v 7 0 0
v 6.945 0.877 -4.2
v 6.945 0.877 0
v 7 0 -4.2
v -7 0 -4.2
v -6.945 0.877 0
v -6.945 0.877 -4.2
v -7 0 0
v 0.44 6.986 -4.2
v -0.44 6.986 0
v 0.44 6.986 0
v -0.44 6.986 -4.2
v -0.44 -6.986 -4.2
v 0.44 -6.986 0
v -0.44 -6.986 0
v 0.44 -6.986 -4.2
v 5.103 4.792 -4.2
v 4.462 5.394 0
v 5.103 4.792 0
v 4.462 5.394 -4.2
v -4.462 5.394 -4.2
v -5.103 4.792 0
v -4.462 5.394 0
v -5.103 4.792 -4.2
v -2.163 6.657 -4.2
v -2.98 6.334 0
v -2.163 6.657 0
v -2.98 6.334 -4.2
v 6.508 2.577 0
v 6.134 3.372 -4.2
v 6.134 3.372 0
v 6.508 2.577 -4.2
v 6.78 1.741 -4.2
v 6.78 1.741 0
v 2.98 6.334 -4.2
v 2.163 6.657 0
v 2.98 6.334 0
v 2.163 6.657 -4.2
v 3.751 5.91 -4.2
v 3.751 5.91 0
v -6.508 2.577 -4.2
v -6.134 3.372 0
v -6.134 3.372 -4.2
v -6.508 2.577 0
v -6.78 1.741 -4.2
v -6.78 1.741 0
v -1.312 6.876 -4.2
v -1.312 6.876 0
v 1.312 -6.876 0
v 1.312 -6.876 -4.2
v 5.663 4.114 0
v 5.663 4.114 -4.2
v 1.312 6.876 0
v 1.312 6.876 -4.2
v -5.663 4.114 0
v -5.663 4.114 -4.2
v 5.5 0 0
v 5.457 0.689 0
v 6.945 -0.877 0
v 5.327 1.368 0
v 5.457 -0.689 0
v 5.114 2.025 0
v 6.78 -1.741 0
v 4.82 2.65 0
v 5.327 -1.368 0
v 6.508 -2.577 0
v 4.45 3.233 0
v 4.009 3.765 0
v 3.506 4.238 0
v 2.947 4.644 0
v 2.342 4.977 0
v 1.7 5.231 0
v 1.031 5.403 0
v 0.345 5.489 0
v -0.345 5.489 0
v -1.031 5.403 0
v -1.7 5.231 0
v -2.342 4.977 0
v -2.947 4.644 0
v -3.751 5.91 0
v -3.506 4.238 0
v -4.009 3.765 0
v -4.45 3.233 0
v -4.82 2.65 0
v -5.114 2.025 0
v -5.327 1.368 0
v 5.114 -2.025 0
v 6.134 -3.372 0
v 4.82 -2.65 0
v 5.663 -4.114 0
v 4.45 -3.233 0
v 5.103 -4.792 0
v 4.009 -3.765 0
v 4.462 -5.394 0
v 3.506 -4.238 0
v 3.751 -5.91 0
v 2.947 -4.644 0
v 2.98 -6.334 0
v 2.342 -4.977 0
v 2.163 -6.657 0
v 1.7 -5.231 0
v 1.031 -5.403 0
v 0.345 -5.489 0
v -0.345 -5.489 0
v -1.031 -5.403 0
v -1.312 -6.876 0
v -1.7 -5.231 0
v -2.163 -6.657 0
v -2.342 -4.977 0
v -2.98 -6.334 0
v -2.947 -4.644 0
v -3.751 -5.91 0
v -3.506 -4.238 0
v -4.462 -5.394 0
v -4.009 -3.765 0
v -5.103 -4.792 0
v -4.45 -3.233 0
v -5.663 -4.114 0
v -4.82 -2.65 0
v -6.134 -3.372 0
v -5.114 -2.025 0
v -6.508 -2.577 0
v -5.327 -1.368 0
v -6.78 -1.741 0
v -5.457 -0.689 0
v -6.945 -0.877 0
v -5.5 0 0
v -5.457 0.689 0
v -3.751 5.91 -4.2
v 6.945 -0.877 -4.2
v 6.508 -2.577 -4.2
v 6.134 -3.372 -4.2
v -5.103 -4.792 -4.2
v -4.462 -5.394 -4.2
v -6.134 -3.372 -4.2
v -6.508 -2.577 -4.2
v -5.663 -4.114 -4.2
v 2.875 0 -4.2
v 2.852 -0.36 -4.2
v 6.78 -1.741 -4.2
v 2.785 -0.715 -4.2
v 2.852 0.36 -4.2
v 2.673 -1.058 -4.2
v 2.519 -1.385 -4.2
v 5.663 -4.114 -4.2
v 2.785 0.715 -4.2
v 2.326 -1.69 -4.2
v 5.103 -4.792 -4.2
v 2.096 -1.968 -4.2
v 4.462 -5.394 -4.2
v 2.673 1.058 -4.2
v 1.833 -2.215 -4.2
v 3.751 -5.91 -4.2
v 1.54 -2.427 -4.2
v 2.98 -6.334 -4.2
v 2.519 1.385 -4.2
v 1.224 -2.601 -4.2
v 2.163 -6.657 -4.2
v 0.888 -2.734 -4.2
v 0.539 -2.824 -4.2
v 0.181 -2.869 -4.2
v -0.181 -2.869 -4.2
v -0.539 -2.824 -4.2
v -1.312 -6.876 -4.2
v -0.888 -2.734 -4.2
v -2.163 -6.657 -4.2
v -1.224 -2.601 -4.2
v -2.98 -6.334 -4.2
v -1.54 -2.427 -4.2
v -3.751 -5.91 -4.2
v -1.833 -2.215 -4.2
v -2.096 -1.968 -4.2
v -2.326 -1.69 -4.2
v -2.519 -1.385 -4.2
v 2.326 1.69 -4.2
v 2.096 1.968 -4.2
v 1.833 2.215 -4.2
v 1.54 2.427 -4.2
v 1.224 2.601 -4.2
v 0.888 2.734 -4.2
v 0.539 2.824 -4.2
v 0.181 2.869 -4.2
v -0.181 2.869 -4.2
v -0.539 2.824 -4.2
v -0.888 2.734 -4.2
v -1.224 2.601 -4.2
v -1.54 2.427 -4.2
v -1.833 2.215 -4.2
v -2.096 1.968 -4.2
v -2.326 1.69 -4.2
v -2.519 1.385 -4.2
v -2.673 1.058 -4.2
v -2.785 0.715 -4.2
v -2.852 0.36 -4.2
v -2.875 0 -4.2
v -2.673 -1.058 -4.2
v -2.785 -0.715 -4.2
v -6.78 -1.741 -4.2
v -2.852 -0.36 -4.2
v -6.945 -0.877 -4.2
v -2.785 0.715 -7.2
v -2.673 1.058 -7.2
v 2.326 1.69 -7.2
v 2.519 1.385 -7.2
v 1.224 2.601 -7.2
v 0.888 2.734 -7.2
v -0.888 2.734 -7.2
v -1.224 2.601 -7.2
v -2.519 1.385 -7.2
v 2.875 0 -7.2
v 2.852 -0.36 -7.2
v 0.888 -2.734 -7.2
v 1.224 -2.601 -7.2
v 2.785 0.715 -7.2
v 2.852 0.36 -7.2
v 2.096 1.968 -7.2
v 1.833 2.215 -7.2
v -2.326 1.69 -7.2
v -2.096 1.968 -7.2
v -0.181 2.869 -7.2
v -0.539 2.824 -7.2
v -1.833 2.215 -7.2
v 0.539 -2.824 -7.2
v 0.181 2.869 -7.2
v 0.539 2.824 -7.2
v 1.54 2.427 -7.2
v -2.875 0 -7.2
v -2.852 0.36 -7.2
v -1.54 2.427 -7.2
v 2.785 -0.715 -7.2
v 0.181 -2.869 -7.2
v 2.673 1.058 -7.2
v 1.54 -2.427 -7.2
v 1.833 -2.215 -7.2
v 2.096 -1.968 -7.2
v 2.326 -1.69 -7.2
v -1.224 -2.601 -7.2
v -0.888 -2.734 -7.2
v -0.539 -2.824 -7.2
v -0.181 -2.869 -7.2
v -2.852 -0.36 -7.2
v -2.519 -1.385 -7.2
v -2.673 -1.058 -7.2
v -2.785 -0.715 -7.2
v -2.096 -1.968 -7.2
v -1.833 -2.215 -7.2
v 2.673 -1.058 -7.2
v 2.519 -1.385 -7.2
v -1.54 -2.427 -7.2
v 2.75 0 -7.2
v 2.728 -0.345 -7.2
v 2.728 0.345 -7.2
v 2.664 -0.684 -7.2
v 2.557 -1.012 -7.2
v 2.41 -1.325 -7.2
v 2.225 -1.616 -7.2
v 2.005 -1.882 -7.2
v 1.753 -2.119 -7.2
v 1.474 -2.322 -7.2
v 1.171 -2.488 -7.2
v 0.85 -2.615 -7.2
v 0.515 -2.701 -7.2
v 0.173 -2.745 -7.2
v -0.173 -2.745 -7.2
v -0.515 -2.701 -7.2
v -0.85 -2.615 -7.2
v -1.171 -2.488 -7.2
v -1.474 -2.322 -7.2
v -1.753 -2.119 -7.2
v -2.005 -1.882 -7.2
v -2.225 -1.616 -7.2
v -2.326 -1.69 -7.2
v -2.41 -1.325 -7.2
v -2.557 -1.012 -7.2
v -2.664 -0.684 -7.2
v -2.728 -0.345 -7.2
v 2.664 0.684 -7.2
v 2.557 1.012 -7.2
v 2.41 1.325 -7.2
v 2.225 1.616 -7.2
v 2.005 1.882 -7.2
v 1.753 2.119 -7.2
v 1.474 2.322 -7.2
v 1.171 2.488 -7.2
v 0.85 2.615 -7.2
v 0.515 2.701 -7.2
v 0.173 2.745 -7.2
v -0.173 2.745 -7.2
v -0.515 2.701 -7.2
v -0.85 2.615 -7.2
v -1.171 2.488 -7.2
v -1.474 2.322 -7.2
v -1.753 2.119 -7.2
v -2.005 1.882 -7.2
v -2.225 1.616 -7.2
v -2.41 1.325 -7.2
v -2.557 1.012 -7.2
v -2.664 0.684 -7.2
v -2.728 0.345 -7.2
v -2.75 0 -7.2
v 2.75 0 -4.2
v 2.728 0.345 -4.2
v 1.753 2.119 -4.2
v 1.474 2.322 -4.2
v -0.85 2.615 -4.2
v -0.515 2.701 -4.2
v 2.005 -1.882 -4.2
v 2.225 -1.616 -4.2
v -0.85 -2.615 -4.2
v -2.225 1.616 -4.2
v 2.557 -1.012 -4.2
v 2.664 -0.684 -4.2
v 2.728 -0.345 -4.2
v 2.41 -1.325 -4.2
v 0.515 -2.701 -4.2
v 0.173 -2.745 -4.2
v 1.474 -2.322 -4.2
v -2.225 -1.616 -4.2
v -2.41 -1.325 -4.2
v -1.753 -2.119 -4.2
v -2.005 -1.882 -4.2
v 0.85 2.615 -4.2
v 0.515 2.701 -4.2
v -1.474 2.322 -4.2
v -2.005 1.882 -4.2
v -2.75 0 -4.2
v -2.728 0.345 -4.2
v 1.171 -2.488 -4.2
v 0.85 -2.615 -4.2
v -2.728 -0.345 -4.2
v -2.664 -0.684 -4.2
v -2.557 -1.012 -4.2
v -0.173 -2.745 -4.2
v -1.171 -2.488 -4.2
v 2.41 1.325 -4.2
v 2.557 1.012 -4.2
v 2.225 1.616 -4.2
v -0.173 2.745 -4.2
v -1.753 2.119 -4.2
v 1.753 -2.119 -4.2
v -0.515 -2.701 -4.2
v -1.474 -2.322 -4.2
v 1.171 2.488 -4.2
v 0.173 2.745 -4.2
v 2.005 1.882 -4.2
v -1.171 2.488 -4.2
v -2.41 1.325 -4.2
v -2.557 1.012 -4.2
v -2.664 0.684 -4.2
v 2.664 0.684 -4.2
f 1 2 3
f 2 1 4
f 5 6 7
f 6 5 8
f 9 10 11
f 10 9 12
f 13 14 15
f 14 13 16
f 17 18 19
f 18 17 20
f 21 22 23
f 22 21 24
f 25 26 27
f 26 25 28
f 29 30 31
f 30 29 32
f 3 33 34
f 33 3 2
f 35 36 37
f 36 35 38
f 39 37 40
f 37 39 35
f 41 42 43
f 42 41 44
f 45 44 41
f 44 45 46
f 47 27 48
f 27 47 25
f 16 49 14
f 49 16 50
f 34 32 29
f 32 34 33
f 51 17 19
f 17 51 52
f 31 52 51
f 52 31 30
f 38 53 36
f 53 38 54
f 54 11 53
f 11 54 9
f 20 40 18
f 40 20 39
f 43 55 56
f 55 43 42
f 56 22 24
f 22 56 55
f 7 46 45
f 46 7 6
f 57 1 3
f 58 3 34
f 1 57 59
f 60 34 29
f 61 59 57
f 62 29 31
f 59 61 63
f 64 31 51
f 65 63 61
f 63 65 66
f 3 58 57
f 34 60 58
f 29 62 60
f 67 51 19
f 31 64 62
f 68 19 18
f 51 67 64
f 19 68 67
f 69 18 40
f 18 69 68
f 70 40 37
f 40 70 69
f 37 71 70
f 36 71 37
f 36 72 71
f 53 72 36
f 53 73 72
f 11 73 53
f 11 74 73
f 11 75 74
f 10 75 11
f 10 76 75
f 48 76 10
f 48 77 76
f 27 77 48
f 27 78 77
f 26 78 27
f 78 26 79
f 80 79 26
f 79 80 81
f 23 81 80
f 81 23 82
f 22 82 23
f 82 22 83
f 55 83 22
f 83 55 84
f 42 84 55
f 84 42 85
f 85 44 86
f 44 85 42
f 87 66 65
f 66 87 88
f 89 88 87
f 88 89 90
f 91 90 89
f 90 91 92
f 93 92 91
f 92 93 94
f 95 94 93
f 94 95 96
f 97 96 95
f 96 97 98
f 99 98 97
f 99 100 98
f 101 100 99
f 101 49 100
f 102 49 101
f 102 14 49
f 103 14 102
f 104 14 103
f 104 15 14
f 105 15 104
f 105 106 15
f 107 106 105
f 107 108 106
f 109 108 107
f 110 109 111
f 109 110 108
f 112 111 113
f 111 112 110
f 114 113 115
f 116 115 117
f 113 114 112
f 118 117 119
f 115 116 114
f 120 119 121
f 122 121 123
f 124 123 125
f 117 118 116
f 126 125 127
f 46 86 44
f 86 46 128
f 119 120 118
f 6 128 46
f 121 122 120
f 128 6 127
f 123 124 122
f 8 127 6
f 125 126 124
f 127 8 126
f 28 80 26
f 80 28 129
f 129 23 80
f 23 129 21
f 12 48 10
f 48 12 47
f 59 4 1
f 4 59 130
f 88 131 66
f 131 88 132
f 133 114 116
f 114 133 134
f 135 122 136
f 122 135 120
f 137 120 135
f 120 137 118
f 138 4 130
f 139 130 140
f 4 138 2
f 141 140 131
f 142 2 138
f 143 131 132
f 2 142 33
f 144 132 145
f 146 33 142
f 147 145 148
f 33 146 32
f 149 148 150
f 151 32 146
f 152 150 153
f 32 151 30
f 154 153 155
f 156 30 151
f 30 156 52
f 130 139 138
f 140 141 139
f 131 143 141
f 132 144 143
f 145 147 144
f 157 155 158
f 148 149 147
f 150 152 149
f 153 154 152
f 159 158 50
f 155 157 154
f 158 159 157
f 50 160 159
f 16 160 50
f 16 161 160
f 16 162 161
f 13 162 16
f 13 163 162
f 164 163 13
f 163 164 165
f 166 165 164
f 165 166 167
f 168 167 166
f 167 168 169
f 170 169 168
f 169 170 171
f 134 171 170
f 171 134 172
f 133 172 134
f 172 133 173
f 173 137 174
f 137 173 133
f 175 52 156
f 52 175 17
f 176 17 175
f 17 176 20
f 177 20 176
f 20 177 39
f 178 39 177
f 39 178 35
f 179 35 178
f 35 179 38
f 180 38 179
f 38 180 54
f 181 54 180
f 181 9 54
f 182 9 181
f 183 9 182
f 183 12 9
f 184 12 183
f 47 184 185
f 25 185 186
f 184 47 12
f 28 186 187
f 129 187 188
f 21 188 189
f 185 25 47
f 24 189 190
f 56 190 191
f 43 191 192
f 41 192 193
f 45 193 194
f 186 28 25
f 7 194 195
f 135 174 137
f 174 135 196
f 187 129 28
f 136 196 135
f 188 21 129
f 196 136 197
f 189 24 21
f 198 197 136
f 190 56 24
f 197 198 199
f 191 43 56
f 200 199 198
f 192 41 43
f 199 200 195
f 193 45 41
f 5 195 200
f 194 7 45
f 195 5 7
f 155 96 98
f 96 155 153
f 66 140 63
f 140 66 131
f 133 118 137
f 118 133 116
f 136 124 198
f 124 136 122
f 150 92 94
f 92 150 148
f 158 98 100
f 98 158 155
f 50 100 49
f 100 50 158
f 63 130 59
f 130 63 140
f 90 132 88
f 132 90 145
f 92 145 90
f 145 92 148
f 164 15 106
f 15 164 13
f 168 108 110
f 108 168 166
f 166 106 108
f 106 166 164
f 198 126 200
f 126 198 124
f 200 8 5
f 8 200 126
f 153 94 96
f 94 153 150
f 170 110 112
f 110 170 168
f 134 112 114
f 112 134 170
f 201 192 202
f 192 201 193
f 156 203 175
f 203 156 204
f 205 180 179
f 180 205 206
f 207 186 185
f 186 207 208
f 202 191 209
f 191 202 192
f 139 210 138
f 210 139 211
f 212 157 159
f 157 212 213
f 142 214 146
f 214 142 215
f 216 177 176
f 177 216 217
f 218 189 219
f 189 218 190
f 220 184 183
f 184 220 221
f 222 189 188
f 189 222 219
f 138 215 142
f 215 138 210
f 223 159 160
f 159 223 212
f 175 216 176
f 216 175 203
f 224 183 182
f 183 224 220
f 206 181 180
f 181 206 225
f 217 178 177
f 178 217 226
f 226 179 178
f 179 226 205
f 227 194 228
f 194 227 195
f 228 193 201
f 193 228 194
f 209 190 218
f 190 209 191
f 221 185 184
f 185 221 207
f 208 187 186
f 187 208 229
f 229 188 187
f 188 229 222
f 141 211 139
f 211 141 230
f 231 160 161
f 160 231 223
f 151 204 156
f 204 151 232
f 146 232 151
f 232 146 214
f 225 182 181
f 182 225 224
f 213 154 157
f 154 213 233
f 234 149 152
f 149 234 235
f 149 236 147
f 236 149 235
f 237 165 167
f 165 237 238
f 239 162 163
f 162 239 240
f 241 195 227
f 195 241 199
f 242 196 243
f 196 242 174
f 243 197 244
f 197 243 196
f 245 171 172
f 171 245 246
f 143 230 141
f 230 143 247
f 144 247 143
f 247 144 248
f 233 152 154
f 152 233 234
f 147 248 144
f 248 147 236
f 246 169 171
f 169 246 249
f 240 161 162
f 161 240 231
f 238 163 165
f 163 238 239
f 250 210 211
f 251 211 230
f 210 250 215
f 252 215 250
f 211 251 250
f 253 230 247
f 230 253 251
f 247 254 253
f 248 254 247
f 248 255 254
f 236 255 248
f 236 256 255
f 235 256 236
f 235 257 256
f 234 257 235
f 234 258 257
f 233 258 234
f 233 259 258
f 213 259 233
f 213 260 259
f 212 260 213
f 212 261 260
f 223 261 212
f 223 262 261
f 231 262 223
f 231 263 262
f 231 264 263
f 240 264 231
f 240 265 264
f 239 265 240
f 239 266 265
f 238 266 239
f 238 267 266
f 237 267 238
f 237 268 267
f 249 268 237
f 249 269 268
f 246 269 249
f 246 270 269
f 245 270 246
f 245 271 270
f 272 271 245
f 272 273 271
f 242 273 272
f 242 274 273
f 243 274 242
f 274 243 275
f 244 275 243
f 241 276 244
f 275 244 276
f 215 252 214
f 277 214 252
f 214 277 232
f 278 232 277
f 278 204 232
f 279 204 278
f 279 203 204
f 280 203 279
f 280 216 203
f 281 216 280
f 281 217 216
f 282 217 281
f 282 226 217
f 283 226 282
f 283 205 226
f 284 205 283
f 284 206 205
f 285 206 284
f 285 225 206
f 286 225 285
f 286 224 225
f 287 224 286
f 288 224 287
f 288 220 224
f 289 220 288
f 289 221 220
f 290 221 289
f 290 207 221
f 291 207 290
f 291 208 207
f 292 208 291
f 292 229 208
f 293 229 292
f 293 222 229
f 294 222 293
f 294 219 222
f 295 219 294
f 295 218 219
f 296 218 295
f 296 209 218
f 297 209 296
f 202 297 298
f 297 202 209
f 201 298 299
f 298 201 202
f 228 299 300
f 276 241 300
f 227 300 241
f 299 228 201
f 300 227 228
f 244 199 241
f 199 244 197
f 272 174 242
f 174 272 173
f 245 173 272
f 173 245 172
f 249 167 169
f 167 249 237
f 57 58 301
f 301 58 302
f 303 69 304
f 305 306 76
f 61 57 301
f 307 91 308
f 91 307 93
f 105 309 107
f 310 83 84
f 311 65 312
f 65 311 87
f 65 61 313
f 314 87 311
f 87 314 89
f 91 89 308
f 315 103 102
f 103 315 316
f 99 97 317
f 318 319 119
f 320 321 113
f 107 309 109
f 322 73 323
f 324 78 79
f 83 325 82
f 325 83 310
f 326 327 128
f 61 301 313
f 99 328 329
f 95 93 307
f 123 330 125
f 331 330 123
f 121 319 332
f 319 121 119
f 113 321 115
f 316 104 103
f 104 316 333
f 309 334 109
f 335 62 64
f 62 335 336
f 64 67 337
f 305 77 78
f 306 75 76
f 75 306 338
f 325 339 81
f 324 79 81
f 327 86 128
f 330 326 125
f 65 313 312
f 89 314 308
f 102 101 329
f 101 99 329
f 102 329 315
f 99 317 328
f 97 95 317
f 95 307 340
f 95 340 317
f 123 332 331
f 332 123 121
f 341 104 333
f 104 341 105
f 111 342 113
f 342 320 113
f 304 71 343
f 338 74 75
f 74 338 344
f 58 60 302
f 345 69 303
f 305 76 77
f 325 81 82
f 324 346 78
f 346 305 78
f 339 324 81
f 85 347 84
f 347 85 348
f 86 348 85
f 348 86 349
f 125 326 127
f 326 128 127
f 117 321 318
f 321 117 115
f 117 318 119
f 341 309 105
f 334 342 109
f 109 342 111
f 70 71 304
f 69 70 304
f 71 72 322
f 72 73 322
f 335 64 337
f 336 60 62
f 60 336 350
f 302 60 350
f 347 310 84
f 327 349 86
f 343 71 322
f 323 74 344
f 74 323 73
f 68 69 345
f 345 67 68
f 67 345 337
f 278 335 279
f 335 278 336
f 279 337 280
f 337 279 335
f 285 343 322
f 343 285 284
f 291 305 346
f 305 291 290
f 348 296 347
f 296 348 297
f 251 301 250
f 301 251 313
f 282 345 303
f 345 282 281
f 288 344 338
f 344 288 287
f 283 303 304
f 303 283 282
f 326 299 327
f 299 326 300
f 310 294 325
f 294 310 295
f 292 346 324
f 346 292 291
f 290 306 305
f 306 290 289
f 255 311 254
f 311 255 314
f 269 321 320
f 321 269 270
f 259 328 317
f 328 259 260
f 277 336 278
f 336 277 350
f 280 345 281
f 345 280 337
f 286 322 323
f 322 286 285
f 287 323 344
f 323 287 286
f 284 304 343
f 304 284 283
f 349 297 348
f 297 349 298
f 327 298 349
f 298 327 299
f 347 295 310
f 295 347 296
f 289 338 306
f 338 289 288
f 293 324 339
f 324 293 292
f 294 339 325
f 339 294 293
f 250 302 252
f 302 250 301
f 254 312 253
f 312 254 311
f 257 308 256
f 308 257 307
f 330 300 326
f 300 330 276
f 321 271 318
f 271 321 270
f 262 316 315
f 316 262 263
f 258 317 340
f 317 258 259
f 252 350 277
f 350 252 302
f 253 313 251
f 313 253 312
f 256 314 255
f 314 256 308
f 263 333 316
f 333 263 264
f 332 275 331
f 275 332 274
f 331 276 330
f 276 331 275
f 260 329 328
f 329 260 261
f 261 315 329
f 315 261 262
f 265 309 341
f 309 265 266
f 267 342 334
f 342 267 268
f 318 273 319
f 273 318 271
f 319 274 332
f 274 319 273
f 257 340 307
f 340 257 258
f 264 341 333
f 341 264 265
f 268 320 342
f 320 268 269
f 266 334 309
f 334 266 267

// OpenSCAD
$fn = 50;


difference() {
	union() {
		translate(v = [0, 0, -4.2000000000]) {
			cylinder(h = 4.2000000000, r = 7.0000000000);
		}
		translate(v = [0, 0, -7.2000000000]) {
			cylinder(h = 7.2000000000, r = 2.8750000000);
		}
	}
	union() {
		translate(v = [0, 0, 0]) {
			rotate(a = [0, 0, 0]) {
				difference() {
					union() {
						translate(v = [0, 0, -7.2000000000]) {
							cylinder(h = 7.2000000000, r = 2.2500000000);
						}
						translate(v = [0, 0, -4.2000000000]) {
							cylinder(h = 4.2000000000, r1 = 2.7500000000, r2 = 5.5000000000);
						}
						translate(v = [0, 0, -7.2000000000]) {
							cylinder(h = 7.2000000000, r = 2.7500000000);
						}
						translate(v = [0, 0, -7.2000000000]) {
							cylinder(h = 7.2000000000, r = 2.2500000000);
						}
					}
					union();
				}
			}
		}
	}
}
